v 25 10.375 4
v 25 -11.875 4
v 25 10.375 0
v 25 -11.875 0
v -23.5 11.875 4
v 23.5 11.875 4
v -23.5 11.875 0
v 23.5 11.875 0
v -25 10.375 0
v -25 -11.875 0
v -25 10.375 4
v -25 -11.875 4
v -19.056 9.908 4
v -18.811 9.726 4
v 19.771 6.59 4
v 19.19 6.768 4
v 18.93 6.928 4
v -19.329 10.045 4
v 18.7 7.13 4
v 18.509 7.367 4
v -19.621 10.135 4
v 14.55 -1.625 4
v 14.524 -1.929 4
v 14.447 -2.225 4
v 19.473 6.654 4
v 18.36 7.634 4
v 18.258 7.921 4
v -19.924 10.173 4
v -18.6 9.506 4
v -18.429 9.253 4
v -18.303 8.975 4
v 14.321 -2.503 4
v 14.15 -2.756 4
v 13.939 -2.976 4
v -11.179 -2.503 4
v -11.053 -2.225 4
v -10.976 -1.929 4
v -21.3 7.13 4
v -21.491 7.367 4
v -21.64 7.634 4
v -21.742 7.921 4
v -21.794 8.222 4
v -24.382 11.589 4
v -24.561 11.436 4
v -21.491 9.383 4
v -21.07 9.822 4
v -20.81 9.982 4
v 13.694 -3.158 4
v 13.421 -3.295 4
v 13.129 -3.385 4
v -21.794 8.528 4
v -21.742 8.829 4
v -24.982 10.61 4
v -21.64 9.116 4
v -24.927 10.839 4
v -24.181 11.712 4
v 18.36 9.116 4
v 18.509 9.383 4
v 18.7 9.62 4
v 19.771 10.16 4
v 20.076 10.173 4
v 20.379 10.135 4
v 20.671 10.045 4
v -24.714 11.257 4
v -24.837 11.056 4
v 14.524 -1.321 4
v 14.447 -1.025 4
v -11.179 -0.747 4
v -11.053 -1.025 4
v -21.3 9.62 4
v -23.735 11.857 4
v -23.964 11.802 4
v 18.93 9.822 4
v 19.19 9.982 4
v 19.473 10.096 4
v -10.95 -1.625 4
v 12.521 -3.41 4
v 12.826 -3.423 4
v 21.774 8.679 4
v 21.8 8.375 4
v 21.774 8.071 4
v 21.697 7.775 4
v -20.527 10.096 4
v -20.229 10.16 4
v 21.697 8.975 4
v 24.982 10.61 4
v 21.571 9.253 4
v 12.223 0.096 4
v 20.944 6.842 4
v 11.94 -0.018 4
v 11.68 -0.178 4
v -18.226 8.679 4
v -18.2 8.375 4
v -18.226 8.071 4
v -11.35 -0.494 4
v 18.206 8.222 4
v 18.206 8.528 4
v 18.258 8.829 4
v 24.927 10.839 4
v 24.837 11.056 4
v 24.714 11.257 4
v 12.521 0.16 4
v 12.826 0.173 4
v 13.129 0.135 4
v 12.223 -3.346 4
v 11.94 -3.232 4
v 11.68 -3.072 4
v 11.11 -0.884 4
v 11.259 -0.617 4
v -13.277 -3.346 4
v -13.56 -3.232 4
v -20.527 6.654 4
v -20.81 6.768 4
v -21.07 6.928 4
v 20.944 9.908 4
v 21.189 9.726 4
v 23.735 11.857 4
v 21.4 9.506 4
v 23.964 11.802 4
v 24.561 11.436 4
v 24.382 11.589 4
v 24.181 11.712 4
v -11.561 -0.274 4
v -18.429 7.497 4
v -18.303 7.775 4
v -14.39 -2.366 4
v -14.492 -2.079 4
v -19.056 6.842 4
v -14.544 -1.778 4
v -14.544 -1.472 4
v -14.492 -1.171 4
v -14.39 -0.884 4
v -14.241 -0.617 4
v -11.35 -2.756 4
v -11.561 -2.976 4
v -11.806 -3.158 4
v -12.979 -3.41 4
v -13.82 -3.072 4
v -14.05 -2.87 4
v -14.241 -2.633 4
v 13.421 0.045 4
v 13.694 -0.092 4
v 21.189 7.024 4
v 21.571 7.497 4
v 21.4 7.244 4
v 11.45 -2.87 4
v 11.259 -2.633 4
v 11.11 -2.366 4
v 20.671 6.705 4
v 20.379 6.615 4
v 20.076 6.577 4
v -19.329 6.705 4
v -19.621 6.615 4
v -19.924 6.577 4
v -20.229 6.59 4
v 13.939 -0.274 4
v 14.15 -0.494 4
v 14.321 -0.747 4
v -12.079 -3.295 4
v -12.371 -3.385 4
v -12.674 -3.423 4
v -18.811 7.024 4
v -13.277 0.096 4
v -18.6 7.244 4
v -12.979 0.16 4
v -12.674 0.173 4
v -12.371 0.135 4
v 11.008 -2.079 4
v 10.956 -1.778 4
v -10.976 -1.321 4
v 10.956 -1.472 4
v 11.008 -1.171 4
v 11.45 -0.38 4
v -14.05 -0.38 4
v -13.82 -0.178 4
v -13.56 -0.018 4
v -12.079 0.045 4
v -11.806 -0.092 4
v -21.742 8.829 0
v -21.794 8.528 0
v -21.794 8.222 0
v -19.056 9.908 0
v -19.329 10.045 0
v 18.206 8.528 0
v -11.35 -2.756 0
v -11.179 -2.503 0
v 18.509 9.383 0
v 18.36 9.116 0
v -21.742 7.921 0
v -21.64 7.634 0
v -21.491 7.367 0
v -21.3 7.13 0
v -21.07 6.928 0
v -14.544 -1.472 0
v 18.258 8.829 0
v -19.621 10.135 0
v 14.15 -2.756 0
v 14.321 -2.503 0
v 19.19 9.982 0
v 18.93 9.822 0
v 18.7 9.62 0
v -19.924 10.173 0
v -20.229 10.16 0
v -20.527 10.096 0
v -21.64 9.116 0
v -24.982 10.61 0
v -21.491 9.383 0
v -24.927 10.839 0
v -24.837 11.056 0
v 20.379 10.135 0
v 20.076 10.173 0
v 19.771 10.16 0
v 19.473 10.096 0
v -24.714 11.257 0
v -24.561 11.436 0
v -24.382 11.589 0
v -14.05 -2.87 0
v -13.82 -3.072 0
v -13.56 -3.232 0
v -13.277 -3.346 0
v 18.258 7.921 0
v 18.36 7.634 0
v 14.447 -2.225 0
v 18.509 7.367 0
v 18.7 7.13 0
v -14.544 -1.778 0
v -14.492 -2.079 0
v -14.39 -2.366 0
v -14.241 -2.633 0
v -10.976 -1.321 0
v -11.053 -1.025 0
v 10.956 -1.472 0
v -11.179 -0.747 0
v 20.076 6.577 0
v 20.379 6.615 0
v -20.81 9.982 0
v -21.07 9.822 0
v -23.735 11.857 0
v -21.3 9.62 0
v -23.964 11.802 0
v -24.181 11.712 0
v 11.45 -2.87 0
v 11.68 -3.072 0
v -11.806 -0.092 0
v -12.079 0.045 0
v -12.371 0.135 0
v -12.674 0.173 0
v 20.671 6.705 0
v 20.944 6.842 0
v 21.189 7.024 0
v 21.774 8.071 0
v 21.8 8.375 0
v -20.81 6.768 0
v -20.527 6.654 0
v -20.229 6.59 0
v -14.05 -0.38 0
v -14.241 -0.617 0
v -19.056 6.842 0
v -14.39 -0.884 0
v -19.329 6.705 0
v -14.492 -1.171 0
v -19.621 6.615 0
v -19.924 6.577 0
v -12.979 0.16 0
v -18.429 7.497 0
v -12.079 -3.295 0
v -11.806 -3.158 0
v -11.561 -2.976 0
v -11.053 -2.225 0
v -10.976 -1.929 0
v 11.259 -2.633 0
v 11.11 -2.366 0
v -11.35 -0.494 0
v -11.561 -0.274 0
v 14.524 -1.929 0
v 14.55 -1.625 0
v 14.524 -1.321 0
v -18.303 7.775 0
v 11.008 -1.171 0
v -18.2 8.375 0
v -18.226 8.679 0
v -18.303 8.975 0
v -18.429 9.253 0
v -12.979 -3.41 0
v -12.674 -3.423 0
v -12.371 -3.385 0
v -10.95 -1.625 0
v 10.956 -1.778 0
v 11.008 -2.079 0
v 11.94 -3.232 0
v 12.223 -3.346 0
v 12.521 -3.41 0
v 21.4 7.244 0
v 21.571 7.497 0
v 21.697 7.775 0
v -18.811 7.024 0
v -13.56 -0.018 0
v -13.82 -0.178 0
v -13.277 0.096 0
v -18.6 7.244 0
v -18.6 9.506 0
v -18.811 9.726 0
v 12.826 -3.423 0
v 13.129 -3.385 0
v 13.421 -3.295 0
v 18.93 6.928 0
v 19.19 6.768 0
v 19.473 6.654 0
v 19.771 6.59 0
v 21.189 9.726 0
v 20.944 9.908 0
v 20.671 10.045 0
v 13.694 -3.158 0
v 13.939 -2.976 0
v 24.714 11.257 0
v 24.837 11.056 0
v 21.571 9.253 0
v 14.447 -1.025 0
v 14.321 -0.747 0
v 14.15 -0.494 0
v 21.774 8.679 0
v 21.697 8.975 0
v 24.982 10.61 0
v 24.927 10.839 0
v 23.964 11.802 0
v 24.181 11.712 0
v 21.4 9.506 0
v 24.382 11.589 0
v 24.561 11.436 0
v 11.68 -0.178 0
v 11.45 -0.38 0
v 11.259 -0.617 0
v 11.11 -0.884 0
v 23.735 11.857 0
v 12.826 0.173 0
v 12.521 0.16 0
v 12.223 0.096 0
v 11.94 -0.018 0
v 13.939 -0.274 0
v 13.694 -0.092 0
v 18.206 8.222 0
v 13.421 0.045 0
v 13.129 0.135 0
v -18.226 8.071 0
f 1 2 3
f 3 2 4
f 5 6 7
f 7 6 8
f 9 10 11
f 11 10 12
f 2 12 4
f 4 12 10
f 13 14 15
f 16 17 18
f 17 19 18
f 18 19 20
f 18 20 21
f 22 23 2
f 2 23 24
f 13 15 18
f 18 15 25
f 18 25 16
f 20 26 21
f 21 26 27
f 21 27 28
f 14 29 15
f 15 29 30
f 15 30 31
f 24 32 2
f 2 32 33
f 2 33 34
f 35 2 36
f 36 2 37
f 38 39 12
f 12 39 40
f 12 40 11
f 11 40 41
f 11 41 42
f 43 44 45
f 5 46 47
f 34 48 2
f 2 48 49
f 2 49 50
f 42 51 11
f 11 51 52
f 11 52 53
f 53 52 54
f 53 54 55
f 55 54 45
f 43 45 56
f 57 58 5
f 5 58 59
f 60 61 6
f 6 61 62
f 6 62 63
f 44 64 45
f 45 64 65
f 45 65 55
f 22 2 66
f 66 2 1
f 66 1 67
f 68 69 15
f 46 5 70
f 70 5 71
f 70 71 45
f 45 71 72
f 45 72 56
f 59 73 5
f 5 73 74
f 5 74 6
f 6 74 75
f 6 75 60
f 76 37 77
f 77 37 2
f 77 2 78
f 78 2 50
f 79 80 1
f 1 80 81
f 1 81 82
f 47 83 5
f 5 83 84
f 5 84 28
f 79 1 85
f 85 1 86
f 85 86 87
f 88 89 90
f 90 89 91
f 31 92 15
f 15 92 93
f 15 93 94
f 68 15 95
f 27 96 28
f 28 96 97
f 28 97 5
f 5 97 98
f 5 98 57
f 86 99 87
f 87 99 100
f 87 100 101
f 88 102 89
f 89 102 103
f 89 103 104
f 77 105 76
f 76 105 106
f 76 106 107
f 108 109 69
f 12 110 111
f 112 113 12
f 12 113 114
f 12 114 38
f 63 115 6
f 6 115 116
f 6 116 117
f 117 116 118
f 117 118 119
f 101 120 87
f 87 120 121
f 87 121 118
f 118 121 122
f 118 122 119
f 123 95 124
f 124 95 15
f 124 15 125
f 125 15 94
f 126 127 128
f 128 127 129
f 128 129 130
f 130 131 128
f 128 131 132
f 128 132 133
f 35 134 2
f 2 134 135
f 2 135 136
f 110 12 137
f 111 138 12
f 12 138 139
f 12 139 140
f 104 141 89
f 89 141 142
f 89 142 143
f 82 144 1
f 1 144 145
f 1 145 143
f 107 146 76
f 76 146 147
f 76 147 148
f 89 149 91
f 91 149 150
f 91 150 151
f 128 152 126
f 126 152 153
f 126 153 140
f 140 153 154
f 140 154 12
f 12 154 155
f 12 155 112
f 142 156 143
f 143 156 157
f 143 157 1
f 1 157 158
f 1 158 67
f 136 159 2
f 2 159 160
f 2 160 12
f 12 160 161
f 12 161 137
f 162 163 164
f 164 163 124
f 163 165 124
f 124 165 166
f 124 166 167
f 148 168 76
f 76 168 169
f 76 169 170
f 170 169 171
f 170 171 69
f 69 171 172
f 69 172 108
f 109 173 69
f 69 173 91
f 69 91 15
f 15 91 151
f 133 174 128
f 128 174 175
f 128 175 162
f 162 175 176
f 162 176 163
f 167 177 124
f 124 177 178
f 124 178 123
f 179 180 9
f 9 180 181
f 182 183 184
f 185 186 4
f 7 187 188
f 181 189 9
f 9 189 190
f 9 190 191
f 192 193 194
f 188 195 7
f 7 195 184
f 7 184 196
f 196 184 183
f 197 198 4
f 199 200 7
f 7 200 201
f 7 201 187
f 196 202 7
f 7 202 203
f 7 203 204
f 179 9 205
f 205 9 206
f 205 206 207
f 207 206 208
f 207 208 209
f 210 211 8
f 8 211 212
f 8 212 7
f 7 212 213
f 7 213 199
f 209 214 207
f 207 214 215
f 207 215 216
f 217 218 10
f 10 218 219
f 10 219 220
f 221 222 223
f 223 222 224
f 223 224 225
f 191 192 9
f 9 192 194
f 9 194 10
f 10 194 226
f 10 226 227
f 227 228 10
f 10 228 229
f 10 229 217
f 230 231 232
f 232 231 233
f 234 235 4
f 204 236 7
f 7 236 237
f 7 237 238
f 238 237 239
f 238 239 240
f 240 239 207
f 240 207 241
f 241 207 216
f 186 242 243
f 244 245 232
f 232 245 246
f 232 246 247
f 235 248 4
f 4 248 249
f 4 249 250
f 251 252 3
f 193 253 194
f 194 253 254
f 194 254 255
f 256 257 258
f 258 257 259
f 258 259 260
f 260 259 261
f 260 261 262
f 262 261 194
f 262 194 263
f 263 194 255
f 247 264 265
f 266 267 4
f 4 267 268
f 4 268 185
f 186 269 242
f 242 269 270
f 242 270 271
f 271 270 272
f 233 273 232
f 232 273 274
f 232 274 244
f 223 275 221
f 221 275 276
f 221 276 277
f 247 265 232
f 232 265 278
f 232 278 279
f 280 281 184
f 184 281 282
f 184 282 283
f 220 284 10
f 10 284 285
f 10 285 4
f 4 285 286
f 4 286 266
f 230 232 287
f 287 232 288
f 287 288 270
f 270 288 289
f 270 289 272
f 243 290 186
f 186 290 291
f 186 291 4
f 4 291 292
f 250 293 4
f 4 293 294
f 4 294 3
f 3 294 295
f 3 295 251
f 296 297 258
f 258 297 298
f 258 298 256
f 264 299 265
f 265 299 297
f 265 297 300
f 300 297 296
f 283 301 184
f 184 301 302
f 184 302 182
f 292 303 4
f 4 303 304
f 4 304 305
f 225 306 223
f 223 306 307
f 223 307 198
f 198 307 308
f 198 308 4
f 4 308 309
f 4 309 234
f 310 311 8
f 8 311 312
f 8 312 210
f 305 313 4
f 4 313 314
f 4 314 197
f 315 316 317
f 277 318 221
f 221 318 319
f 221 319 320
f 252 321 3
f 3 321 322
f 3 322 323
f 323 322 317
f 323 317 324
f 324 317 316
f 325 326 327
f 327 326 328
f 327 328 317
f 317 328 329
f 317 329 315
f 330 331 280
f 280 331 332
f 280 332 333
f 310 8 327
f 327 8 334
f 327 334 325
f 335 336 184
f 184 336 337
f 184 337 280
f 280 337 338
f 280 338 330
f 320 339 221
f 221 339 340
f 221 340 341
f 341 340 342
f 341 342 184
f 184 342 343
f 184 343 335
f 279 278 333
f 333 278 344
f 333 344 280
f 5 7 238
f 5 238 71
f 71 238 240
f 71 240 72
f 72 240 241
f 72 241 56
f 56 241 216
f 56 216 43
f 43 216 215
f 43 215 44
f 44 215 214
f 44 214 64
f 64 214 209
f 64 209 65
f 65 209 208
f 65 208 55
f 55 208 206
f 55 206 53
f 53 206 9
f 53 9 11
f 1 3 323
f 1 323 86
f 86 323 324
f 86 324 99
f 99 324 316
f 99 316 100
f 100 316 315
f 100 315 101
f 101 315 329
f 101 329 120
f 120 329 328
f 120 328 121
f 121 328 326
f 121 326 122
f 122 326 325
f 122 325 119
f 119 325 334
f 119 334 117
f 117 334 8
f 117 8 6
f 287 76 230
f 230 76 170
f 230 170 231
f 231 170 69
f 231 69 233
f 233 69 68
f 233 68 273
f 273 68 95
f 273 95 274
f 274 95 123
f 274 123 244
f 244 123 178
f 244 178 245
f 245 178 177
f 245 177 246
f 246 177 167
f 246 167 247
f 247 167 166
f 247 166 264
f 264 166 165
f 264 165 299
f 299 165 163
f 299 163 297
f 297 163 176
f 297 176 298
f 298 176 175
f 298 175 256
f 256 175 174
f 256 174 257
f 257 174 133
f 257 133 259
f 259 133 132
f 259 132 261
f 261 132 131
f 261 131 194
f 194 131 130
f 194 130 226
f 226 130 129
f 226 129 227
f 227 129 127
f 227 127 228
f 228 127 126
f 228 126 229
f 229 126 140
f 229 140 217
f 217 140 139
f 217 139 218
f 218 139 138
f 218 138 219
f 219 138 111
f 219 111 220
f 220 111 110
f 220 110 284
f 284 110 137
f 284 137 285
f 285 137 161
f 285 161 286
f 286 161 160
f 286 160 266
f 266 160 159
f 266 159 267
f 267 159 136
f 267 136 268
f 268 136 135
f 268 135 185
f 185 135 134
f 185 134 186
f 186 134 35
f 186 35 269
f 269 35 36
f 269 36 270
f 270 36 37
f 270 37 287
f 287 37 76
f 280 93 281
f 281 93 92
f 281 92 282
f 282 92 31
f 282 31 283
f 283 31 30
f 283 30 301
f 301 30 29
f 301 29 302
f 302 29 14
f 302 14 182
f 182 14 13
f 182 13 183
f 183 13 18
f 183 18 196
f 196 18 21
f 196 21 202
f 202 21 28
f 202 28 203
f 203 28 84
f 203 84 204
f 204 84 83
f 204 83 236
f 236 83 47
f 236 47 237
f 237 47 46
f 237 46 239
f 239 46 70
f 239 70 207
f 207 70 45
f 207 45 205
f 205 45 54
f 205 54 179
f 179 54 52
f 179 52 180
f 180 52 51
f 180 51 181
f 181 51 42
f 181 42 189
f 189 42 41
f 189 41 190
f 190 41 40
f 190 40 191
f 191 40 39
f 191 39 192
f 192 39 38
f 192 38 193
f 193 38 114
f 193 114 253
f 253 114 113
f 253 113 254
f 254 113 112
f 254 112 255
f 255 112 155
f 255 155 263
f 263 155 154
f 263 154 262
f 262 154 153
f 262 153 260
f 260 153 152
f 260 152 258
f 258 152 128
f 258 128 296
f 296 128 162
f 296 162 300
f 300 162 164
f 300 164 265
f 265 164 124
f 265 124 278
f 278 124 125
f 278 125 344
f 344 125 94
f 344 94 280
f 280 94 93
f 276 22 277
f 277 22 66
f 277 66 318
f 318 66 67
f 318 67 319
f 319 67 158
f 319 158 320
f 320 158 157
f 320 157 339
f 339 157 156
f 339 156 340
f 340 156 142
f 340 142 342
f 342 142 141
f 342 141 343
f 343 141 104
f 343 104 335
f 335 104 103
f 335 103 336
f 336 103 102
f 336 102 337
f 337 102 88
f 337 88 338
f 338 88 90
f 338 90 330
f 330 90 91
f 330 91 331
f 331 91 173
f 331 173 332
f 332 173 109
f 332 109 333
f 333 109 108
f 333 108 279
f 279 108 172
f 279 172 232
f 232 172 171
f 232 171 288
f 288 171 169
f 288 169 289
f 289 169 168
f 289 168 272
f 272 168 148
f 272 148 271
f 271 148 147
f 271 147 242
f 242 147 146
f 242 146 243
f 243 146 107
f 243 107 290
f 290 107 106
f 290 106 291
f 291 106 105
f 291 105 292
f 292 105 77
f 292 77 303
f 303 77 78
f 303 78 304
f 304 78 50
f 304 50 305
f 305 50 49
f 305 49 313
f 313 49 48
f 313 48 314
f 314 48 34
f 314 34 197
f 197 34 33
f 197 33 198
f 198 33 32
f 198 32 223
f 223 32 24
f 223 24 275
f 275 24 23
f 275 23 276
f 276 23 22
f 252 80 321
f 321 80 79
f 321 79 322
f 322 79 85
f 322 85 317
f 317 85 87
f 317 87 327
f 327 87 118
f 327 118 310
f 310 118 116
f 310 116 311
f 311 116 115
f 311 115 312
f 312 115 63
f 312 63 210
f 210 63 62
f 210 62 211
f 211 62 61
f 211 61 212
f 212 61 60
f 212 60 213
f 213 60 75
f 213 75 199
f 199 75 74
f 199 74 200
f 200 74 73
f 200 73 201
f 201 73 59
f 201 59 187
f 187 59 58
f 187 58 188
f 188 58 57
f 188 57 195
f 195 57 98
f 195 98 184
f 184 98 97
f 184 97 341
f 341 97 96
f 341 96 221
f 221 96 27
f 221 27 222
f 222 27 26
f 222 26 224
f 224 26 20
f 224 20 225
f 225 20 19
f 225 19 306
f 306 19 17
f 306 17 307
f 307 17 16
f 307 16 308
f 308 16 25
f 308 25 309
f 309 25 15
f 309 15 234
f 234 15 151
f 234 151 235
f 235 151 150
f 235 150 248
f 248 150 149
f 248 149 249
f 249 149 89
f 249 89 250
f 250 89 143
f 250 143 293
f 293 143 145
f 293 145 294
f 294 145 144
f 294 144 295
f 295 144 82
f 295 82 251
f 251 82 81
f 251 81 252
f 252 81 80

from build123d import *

# Parameters (mm, degrees)
SKETCH1_W           = 50
SKETCH1_H           = 23.75
BOSS_EXTRUDE1_DEPTH = 4
FILLET1_R           = 1.5
SKETCH2_R           = 1.8
CUT_EXTRUDE1_DEPTH  = 28.964542281


with BuildPart() as part:
    # Sketch1 → Boss-Extrude1 (new body)
    with BuildSketch(Plane.XY):
        Rectangle(SKETCH1_W, SKETCH1_H)
    extrude(amount=BOSS_EXTRUDE1_DEPTH)

    # Fillet1
    fillet1_edges = [part.edges().sort_by_distance(p)[0] for p in [
        (-25, 11.875, 2),
        (25, 11.875, 2),
    ]]
    fillet(fillet1_edges, radius=FILLET1_R)

    # Sketch2 → Cut-Extrude1 (cut, through all)
    with BuildSketch(Plane.XY.offset(4)):
        with Locations((-12.75, -1.625)):
            Circle(SKETCH2_R)
        with Locations((-20, 8.375)):
            Circle(SKETCH2_R)
        with Locations((12.75, -1.625)):
            Circle(SKETCH2_R)
        with Locations((20, 8.375)):
            Circle(SKETCH2_R)
    extrude(amount=-CUT_EXTRUDE1_DEPTH, mode=Mode.SUBTRACT)


solid = part.part
